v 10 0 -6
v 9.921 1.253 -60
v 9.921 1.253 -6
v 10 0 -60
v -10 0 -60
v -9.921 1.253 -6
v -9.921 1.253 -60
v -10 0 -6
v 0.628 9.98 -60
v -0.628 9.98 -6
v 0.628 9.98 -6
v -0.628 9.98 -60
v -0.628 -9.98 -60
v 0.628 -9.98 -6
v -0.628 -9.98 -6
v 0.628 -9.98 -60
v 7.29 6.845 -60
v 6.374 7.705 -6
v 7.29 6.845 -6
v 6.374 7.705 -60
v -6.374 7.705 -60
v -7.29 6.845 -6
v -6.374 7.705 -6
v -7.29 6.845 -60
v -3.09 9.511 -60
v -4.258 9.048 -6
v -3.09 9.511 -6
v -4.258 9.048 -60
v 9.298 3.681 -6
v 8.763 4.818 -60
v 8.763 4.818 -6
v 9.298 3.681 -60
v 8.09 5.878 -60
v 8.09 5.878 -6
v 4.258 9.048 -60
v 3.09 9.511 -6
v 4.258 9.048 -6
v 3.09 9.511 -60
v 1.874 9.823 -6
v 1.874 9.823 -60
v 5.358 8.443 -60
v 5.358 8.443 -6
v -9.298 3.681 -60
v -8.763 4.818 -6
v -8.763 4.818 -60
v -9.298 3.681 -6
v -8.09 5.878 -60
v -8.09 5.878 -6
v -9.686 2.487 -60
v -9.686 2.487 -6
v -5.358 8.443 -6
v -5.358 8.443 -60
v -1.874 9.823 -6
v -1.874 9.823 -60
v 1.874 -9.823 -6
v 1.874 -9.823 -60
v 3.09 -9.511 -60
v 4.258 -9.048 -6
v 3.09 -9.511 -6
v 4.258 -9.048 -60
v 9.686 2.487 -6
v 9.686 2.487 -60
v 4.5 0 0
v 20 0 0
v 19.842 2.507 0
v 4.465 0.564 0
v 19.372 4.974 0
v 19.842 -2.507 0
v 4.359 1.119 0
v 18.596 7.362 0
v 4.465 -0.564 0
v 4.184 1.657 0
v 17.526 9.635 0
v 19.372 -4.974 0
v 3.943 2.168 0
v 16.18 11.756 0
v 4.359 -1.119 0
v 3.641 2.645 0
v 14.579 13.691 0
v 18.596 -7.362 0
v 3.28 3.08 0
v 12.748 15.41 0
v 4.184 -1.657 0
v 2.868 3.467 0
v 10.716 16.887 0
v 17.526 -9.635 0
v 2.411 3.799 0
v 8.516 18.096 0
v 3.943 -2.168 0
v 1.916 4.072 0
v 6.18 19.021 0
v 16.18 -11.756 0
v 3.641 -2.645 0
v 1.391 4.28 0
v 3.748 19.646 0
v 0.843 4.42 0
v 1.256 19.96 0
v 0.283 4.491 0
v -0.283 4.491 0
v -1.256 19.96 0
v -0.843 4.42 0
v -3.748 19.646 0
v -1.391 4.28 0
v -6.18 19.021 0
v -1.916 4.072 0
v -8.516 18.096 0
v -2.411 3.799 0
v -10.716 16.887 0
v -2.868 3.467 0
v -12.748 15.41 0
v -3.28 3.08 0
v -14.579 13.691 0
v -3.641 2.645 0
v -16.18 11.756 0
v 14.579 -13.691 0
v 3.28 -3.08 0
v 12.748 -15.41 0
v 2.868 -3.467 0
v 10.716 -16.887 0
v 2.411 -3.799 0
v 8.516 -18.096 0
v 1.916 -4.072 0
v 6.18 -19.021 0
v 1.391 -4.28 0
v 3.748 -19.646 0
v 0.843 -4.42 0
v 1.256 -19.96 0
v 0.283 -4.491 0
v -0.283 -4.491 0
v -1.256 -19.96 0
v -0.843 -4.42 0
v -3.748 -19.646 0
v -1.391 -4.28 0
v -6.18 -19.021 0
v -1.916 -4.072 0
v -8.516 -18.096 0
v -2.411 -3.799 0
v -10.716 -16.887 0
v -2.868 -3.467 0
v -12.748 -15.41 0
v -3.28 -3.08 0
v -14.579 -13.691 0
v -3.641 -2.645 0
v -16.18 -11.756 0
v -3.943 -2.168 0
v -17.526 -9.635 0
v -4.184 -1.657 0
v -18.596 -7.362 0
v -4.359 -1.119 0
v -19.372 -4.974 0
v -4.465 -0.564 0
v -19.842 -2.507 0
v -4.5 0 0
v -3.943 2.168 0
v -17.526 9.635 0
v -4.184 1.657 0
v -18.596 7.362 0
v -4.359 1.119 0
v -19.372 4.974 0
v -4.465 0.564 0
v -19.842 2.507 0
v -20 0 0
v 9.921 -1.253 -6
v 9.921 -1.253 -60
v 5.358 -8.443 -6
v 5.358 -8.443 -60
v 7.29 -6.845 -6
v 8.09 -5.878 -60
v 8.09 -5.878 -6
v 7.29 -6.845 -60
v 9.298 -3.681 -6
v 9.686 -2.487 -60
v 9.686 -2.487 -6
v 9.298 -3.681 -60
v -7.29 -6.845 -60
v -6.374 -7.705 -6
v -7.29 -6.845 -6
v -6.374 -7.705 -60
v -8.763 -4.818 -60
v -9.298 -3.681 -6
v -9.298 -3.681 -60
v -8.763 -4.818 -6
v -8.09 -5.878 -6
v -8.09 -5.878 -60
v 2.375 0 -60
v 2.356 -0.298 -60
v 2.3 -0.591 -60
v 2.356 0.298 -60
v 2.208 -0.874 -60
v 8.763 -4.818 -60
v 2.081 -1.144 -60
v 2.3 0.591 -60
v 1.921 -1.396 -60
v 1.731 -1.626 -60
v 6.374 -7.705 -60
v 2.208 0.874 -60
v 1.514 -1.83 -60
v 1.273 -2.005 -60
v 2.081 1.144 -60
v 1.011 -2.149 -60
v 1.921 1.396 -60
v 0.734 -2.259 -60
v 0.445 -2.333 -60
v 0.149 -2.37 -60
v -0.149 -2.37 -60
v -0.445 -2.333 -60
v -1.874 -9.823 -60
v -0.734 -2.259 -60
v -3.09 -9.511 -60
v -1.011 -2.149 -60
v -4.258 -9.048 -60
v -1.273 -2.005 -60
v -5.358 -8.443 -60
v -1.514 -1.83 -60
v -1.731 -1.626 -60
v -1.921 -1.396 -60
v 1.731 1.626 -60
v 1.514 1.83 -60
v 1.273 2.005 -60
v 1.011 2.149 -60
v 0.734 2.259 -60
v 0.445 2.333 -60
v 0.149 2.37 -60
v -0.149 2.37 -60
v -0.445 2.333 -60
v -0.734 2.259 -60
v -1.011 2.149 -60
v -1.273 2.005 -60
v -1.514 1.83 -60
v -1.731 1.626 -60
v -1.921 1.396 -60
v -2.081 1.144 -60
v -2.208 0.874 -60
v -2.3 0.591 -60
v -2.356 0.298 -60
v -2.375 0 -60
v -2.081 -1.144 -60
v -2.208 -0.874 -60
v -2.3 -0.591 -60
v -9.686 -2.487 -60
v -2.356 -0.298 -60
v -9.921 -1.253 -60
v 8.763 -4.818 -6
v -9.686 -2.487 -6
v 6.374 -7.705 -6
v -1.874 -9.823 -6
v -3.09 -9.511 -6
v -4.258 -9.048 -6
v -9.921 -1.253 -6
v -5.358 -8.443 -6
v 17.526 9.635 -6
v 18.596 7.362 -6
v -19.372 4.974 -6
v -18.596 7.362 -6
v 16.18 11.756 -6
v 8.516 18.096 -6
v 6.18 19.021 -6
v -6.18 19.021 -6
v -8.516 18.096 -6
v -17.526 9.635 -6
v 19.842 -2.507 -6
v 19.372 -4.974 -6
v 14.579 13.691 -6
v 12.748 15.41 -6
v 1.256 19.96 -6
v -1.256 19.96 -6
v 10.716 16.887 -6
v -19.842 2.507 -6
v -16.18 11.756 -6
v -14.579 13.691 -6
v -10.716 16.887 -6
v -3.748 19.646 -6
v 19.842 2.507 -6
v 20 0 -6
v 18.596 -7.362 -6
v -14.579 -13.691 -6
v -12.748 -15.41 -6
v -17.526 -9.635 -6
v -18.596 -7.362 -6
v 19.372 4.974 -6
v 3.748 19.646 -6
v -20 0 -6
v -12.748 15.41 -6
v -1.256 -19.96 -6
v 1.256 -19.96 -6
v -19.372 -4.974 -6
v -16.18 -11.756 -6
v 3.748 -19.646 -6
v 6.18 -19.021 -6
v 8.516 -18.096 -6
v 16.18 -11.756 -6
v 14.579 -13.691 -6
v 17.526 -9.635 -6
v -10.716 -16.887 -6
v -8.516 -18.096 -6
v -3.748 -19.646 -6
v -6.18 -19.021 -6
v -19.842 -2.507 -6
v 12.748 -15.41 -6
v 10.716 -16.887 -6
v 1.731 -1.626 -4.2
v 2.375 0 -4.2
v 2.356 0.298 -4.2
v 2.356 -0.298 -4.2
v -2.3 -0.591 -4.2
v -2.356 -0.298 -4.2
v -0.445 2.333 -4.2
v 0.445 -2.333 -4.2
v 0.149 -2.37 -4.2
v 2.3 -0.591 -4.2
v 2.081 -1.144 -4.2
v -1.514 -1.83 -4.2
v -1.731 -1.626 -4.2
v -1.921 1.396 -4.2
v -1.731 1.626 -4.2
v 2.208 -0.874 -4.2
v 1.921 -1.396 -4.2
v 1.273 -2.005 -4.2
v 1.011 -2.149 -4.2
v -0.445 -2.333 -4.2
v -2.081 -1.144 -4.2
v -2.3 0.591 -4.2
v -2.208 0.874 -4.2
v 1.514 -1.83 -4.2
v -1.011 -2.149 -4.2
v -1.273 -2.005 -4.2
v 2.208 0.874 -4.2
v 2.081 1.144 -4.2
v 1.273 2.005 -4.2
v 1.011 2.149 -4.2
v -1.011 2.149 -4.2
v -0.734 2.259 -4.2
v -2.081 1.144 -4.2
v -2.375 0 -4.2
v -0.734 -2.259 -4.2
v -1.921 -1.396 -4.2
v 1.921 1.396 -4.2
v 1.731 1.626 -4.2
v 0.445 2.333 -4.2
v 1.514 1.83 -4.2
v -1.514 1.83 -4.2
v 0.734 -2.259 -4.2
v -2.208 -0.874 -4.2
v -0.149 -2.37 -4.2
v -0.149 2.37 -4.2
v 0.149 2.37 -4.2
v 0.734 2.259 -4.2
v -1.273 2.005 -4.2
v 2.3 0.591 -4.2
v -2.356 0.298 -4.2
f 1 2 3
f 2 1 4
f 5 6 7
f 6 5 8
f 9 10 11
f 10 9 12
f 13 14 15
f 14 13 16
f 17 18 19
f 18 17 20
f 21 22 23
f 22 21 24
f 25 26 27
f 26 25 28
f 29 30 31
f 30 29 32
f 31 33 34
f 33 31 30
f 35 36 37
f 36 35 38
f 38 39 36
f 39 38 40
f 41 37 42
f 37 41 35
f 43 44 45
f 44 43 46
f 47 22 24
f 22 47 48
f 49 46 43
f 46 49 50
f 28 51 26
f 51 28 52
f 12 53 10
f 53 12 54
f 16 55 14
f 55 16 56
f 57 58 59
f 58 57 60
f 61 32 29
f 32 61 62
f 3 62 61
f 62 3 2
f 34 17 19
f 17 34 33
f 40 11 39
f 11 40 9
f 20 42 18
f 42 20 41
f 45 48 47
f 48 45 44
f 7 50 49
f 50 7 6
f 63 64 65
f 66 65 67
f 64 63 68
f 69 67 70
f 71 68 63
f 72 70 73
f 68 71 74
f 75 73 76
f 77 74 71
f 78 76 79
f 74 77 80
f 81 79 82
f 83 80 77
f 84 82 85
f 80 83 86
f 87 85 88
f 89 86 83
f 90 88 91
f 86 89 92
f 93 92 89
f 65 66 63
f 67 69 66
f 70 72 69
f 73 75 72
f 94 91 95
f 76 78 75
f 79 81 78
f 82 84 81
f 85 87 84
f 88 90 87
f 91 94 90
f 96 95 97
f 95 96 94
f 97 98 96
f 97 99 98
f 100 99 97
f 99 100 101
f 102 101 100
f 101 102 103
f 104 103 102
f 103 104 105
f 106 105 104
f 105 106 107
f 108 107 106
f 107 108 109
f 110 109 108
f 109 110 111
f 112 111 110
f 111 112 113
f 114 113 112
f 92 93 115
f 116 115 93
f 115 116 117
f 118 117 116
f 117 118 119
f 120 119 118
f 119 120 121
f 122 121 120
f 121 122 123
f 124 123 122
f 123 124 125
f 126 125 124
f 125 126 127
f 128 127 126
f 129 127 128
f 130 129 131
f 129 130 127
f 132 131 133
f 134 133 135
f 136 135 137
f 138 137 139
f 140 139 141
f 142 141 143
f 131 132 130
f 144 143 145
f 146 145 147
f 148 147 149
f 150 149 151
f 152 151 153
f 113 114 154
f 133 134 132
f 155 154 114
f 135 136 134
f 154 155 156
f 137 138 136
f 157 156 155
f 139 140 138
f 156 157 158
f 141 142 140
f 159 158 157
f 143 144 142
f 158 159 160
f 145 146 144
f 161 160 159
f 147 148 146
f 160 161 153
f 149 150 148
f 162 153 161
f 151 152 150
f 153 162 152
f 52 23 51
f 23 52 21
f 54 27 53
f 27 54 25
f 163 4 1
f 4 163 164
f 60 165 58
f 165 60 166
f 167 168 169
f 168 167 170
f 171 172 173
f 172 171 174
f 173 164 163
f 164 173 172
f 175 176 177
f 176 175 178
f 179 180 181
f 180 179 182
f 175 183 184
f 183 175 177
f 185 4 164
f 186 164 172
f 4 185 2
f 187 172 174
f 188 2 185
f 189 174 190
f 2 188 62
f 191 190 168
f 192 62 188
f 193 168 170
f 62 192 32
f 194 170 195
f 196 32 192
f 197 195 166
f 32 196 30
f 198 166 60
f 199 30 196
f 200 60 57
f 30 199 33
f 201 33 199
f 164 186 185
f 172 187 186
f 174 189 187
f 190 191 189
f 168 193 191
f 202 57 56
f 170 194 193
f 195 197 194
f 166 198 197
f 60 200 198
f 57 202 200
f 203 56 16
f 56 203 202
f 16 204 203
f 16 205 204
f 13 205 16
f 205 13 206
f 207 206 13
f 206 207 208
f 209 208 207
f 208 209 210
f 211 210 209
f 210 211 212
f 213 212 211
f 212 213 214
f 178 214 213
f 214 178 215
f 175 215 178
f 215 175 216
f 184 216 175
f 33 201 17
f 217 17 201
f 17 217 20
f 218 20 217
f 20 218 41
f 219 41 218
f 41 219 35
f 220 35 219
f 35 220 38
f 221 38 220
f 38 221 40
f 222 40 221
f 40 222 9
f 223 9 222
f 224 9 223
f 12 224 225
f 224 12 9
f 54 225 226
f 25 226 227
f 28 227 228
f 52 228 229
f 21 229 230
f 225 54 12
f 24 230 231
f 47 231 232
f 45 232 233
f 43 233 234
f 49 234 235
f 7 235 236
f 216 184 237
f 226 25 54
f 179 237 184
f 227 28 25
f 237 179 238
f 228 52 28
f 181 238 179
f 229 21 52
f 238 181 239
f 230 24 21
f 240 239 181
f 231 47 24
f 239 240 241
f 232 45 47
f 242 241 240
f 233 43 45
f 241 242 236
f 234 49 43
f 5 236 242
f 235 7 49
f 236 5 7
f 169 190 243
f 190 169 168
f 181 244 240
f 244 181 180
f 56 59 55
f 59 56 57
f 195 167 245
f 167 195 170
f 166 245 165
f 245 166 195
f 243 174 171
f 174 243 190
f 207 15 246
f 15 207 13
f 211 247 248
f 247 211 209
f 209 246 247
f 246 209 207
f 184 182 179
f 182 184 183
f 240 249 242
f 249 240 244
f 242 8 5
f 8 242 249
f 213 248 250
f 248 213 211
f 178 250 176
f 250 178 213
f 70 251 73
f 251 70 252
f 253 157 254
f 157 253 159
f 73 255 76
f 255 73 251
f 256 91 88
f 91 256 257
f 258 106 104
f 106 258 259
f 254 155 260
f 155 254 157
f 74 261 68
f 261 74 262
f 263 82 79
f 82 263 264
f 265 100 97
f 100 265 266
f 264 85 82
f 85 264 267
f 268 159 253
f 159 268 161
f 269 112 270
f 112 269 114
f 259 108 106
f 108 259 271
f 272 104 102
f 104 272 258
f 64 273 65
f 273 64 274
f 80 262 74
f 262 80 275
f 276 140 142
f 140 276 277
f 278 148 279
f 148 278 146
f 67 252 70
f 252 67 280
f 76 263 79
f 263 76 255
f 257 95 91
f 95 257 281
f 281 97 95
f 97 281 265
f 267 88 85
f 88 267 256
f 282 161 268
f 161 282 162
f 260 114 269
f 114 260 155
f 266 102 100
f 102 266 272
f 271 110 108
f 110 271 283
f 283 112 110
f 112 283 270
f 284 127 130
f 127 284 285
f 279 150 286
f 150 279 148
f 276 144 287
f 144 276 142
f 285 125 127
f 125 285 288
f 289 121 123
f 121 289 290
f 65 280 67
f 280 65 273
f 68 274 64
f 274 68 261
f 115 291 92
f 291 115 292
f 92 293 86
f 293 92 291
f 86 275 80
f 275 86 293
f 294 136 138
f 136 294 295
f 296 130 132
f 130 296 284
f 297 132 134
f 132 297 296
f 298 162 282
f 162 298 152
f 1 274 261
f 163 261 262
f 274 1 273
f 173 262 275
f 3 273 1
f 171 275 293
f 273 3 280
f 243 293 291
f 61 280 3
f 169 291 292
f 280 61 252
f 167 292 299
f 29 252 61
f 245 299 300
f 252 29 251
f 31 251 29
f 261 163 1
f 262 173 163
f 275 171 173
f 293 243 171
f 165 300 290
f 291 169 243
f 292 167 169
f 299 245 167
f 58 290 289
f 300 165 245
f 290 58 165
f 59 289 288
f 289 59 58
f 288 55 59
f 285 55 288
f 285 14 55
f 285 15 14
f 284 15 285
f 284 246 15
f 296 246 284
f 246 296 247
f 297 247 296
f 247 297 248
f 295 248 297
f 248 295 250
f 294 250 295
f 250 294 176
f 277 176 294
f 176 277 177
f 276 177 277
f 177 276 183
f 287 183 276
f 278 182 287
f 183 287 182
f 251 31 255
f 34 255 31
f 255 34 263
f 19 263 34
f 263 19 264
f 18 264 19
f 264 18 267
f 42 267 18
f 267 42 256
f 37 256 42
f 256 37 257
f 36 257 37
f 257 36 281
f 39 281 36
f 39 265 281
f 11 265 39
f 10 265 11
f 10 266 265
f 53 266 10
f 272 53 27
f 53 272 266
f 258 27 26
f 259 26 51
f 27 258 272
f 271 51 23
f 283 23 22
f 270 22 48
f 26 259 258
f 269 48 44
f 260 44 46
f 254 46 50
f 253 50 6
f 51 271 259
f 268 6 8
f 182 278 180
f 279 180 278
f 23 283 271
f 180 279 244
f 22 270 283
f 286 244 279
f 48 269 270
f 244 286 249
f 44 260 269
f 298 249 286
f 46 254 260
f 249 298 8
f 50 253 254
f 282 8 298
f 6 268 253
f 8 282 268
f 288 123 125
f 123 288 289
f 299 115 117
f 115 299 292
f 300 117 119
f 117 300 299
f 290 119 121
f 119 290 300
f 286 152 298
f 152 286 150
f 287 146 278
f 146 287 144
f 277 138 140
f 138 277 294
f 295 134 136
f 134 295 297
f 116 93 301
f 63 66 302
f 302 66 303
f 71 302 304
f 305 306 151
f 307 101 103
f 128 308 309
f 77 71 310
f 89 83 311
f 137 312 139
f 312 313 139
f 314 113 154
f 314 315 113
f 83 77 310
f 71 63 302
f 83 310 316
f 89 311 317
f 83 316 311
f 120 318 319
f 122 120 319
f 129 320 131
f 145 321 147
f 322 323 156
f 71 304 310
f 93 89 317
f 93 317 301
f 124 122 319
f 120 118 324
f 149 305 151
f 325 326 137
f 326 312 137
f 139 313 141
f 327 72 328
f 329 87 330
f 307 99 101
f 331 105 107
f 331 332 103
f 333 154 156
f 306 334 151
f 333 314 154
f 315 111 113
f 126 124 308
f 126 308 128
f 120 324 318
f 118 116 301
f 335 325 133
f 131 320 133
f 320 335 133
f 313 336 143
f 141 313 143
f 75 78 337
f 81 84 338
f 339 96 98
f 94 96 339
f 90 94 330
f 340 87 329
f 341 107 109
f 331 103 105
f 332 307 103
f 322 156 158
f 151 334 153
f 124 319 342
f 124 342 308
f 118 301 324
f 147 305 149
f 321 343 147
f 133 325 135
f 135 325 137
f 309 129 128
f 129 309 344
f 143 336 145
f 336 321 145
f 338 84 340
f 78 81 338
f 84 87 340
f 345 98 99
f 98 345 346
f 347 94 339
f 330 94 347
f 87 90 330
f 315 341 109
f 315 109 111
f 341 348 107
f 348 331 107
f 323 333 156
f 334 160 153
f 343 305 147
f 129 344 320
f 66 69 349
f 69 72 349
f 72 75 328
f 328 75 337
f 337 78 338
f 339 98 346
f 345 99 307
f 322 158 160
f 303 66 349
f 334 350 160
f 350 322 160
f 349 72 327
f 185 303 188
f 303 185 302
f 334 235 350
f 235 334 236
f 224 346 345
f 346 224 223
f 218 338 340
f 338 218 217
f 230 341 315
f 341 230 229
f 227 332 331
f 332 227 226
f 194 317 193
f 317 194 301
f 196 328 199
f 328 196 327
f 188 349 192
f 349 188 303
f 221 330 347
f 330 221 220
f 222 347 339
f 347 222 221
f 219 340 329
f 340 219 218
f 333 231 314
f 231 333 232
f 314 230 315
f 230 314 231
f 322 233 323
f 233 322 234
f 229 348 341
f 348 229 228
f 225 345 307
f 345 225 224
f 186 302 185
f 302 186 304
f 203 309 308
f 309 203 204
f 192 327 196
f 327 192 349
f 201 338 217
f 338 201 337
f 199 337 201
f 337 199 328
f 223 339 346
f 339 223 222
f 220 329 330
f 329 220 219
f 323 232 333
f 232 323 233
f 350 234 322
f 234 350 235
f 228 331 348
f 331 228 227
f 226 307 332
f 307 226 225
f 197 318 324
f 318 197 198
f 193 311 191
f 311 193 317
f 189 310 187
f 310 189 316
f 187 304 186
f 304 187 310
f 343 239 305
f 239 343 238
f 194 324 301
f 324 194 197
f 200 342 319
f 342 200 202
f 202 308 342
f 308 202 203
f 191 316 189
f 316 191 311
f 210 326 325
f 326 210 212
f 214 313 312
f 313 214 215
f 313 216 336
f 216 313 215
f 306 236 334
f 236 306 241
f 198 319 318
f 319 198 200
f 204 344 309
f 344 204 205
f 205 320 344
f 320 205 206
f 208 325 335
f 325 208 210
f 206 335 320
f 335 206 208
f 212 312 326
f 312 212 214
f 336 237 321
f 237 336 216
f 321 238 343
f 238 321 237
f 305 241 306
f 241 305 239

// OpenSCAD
$fn = 50;


difference() {
	union() {
		translate(v = [0, 0, -60.0000000000]) {
			cylinder(h = 60, r = 10.0000000000);
		}
		translate(v = [0, 0, -6.0000000000]) {
			cylinder(h = 6, r = 20.0000000000);
		}
	}
	union() {
		translate(v = [0, 0, 0]) {
			rotate(a = [0, 0, 0]) {
				difference() {
					union() {
						#translate(v = [0, 0, -60.0000000000]) {
							cylinder(h = 60, r = 2.2500000000);
						}
						#translate(v = [0, 0, -4.2000000000]) {
							cylinder(h = 4.2000000000, r = 10.0000000000, r1 = 2.3750000000, r2 = 4.5000000000);
						}
						#translate(v = [0, 0, -60.0000000000]) {
							cylinder(h = 60, r = 2.3750000000);
						}
						#translate(v = [0, 0, -60.0000000000]) {
							cylinder(h = 60, r = 2.2500000000);
						}
					}
					union();
				}
			}
		}
	}
}
